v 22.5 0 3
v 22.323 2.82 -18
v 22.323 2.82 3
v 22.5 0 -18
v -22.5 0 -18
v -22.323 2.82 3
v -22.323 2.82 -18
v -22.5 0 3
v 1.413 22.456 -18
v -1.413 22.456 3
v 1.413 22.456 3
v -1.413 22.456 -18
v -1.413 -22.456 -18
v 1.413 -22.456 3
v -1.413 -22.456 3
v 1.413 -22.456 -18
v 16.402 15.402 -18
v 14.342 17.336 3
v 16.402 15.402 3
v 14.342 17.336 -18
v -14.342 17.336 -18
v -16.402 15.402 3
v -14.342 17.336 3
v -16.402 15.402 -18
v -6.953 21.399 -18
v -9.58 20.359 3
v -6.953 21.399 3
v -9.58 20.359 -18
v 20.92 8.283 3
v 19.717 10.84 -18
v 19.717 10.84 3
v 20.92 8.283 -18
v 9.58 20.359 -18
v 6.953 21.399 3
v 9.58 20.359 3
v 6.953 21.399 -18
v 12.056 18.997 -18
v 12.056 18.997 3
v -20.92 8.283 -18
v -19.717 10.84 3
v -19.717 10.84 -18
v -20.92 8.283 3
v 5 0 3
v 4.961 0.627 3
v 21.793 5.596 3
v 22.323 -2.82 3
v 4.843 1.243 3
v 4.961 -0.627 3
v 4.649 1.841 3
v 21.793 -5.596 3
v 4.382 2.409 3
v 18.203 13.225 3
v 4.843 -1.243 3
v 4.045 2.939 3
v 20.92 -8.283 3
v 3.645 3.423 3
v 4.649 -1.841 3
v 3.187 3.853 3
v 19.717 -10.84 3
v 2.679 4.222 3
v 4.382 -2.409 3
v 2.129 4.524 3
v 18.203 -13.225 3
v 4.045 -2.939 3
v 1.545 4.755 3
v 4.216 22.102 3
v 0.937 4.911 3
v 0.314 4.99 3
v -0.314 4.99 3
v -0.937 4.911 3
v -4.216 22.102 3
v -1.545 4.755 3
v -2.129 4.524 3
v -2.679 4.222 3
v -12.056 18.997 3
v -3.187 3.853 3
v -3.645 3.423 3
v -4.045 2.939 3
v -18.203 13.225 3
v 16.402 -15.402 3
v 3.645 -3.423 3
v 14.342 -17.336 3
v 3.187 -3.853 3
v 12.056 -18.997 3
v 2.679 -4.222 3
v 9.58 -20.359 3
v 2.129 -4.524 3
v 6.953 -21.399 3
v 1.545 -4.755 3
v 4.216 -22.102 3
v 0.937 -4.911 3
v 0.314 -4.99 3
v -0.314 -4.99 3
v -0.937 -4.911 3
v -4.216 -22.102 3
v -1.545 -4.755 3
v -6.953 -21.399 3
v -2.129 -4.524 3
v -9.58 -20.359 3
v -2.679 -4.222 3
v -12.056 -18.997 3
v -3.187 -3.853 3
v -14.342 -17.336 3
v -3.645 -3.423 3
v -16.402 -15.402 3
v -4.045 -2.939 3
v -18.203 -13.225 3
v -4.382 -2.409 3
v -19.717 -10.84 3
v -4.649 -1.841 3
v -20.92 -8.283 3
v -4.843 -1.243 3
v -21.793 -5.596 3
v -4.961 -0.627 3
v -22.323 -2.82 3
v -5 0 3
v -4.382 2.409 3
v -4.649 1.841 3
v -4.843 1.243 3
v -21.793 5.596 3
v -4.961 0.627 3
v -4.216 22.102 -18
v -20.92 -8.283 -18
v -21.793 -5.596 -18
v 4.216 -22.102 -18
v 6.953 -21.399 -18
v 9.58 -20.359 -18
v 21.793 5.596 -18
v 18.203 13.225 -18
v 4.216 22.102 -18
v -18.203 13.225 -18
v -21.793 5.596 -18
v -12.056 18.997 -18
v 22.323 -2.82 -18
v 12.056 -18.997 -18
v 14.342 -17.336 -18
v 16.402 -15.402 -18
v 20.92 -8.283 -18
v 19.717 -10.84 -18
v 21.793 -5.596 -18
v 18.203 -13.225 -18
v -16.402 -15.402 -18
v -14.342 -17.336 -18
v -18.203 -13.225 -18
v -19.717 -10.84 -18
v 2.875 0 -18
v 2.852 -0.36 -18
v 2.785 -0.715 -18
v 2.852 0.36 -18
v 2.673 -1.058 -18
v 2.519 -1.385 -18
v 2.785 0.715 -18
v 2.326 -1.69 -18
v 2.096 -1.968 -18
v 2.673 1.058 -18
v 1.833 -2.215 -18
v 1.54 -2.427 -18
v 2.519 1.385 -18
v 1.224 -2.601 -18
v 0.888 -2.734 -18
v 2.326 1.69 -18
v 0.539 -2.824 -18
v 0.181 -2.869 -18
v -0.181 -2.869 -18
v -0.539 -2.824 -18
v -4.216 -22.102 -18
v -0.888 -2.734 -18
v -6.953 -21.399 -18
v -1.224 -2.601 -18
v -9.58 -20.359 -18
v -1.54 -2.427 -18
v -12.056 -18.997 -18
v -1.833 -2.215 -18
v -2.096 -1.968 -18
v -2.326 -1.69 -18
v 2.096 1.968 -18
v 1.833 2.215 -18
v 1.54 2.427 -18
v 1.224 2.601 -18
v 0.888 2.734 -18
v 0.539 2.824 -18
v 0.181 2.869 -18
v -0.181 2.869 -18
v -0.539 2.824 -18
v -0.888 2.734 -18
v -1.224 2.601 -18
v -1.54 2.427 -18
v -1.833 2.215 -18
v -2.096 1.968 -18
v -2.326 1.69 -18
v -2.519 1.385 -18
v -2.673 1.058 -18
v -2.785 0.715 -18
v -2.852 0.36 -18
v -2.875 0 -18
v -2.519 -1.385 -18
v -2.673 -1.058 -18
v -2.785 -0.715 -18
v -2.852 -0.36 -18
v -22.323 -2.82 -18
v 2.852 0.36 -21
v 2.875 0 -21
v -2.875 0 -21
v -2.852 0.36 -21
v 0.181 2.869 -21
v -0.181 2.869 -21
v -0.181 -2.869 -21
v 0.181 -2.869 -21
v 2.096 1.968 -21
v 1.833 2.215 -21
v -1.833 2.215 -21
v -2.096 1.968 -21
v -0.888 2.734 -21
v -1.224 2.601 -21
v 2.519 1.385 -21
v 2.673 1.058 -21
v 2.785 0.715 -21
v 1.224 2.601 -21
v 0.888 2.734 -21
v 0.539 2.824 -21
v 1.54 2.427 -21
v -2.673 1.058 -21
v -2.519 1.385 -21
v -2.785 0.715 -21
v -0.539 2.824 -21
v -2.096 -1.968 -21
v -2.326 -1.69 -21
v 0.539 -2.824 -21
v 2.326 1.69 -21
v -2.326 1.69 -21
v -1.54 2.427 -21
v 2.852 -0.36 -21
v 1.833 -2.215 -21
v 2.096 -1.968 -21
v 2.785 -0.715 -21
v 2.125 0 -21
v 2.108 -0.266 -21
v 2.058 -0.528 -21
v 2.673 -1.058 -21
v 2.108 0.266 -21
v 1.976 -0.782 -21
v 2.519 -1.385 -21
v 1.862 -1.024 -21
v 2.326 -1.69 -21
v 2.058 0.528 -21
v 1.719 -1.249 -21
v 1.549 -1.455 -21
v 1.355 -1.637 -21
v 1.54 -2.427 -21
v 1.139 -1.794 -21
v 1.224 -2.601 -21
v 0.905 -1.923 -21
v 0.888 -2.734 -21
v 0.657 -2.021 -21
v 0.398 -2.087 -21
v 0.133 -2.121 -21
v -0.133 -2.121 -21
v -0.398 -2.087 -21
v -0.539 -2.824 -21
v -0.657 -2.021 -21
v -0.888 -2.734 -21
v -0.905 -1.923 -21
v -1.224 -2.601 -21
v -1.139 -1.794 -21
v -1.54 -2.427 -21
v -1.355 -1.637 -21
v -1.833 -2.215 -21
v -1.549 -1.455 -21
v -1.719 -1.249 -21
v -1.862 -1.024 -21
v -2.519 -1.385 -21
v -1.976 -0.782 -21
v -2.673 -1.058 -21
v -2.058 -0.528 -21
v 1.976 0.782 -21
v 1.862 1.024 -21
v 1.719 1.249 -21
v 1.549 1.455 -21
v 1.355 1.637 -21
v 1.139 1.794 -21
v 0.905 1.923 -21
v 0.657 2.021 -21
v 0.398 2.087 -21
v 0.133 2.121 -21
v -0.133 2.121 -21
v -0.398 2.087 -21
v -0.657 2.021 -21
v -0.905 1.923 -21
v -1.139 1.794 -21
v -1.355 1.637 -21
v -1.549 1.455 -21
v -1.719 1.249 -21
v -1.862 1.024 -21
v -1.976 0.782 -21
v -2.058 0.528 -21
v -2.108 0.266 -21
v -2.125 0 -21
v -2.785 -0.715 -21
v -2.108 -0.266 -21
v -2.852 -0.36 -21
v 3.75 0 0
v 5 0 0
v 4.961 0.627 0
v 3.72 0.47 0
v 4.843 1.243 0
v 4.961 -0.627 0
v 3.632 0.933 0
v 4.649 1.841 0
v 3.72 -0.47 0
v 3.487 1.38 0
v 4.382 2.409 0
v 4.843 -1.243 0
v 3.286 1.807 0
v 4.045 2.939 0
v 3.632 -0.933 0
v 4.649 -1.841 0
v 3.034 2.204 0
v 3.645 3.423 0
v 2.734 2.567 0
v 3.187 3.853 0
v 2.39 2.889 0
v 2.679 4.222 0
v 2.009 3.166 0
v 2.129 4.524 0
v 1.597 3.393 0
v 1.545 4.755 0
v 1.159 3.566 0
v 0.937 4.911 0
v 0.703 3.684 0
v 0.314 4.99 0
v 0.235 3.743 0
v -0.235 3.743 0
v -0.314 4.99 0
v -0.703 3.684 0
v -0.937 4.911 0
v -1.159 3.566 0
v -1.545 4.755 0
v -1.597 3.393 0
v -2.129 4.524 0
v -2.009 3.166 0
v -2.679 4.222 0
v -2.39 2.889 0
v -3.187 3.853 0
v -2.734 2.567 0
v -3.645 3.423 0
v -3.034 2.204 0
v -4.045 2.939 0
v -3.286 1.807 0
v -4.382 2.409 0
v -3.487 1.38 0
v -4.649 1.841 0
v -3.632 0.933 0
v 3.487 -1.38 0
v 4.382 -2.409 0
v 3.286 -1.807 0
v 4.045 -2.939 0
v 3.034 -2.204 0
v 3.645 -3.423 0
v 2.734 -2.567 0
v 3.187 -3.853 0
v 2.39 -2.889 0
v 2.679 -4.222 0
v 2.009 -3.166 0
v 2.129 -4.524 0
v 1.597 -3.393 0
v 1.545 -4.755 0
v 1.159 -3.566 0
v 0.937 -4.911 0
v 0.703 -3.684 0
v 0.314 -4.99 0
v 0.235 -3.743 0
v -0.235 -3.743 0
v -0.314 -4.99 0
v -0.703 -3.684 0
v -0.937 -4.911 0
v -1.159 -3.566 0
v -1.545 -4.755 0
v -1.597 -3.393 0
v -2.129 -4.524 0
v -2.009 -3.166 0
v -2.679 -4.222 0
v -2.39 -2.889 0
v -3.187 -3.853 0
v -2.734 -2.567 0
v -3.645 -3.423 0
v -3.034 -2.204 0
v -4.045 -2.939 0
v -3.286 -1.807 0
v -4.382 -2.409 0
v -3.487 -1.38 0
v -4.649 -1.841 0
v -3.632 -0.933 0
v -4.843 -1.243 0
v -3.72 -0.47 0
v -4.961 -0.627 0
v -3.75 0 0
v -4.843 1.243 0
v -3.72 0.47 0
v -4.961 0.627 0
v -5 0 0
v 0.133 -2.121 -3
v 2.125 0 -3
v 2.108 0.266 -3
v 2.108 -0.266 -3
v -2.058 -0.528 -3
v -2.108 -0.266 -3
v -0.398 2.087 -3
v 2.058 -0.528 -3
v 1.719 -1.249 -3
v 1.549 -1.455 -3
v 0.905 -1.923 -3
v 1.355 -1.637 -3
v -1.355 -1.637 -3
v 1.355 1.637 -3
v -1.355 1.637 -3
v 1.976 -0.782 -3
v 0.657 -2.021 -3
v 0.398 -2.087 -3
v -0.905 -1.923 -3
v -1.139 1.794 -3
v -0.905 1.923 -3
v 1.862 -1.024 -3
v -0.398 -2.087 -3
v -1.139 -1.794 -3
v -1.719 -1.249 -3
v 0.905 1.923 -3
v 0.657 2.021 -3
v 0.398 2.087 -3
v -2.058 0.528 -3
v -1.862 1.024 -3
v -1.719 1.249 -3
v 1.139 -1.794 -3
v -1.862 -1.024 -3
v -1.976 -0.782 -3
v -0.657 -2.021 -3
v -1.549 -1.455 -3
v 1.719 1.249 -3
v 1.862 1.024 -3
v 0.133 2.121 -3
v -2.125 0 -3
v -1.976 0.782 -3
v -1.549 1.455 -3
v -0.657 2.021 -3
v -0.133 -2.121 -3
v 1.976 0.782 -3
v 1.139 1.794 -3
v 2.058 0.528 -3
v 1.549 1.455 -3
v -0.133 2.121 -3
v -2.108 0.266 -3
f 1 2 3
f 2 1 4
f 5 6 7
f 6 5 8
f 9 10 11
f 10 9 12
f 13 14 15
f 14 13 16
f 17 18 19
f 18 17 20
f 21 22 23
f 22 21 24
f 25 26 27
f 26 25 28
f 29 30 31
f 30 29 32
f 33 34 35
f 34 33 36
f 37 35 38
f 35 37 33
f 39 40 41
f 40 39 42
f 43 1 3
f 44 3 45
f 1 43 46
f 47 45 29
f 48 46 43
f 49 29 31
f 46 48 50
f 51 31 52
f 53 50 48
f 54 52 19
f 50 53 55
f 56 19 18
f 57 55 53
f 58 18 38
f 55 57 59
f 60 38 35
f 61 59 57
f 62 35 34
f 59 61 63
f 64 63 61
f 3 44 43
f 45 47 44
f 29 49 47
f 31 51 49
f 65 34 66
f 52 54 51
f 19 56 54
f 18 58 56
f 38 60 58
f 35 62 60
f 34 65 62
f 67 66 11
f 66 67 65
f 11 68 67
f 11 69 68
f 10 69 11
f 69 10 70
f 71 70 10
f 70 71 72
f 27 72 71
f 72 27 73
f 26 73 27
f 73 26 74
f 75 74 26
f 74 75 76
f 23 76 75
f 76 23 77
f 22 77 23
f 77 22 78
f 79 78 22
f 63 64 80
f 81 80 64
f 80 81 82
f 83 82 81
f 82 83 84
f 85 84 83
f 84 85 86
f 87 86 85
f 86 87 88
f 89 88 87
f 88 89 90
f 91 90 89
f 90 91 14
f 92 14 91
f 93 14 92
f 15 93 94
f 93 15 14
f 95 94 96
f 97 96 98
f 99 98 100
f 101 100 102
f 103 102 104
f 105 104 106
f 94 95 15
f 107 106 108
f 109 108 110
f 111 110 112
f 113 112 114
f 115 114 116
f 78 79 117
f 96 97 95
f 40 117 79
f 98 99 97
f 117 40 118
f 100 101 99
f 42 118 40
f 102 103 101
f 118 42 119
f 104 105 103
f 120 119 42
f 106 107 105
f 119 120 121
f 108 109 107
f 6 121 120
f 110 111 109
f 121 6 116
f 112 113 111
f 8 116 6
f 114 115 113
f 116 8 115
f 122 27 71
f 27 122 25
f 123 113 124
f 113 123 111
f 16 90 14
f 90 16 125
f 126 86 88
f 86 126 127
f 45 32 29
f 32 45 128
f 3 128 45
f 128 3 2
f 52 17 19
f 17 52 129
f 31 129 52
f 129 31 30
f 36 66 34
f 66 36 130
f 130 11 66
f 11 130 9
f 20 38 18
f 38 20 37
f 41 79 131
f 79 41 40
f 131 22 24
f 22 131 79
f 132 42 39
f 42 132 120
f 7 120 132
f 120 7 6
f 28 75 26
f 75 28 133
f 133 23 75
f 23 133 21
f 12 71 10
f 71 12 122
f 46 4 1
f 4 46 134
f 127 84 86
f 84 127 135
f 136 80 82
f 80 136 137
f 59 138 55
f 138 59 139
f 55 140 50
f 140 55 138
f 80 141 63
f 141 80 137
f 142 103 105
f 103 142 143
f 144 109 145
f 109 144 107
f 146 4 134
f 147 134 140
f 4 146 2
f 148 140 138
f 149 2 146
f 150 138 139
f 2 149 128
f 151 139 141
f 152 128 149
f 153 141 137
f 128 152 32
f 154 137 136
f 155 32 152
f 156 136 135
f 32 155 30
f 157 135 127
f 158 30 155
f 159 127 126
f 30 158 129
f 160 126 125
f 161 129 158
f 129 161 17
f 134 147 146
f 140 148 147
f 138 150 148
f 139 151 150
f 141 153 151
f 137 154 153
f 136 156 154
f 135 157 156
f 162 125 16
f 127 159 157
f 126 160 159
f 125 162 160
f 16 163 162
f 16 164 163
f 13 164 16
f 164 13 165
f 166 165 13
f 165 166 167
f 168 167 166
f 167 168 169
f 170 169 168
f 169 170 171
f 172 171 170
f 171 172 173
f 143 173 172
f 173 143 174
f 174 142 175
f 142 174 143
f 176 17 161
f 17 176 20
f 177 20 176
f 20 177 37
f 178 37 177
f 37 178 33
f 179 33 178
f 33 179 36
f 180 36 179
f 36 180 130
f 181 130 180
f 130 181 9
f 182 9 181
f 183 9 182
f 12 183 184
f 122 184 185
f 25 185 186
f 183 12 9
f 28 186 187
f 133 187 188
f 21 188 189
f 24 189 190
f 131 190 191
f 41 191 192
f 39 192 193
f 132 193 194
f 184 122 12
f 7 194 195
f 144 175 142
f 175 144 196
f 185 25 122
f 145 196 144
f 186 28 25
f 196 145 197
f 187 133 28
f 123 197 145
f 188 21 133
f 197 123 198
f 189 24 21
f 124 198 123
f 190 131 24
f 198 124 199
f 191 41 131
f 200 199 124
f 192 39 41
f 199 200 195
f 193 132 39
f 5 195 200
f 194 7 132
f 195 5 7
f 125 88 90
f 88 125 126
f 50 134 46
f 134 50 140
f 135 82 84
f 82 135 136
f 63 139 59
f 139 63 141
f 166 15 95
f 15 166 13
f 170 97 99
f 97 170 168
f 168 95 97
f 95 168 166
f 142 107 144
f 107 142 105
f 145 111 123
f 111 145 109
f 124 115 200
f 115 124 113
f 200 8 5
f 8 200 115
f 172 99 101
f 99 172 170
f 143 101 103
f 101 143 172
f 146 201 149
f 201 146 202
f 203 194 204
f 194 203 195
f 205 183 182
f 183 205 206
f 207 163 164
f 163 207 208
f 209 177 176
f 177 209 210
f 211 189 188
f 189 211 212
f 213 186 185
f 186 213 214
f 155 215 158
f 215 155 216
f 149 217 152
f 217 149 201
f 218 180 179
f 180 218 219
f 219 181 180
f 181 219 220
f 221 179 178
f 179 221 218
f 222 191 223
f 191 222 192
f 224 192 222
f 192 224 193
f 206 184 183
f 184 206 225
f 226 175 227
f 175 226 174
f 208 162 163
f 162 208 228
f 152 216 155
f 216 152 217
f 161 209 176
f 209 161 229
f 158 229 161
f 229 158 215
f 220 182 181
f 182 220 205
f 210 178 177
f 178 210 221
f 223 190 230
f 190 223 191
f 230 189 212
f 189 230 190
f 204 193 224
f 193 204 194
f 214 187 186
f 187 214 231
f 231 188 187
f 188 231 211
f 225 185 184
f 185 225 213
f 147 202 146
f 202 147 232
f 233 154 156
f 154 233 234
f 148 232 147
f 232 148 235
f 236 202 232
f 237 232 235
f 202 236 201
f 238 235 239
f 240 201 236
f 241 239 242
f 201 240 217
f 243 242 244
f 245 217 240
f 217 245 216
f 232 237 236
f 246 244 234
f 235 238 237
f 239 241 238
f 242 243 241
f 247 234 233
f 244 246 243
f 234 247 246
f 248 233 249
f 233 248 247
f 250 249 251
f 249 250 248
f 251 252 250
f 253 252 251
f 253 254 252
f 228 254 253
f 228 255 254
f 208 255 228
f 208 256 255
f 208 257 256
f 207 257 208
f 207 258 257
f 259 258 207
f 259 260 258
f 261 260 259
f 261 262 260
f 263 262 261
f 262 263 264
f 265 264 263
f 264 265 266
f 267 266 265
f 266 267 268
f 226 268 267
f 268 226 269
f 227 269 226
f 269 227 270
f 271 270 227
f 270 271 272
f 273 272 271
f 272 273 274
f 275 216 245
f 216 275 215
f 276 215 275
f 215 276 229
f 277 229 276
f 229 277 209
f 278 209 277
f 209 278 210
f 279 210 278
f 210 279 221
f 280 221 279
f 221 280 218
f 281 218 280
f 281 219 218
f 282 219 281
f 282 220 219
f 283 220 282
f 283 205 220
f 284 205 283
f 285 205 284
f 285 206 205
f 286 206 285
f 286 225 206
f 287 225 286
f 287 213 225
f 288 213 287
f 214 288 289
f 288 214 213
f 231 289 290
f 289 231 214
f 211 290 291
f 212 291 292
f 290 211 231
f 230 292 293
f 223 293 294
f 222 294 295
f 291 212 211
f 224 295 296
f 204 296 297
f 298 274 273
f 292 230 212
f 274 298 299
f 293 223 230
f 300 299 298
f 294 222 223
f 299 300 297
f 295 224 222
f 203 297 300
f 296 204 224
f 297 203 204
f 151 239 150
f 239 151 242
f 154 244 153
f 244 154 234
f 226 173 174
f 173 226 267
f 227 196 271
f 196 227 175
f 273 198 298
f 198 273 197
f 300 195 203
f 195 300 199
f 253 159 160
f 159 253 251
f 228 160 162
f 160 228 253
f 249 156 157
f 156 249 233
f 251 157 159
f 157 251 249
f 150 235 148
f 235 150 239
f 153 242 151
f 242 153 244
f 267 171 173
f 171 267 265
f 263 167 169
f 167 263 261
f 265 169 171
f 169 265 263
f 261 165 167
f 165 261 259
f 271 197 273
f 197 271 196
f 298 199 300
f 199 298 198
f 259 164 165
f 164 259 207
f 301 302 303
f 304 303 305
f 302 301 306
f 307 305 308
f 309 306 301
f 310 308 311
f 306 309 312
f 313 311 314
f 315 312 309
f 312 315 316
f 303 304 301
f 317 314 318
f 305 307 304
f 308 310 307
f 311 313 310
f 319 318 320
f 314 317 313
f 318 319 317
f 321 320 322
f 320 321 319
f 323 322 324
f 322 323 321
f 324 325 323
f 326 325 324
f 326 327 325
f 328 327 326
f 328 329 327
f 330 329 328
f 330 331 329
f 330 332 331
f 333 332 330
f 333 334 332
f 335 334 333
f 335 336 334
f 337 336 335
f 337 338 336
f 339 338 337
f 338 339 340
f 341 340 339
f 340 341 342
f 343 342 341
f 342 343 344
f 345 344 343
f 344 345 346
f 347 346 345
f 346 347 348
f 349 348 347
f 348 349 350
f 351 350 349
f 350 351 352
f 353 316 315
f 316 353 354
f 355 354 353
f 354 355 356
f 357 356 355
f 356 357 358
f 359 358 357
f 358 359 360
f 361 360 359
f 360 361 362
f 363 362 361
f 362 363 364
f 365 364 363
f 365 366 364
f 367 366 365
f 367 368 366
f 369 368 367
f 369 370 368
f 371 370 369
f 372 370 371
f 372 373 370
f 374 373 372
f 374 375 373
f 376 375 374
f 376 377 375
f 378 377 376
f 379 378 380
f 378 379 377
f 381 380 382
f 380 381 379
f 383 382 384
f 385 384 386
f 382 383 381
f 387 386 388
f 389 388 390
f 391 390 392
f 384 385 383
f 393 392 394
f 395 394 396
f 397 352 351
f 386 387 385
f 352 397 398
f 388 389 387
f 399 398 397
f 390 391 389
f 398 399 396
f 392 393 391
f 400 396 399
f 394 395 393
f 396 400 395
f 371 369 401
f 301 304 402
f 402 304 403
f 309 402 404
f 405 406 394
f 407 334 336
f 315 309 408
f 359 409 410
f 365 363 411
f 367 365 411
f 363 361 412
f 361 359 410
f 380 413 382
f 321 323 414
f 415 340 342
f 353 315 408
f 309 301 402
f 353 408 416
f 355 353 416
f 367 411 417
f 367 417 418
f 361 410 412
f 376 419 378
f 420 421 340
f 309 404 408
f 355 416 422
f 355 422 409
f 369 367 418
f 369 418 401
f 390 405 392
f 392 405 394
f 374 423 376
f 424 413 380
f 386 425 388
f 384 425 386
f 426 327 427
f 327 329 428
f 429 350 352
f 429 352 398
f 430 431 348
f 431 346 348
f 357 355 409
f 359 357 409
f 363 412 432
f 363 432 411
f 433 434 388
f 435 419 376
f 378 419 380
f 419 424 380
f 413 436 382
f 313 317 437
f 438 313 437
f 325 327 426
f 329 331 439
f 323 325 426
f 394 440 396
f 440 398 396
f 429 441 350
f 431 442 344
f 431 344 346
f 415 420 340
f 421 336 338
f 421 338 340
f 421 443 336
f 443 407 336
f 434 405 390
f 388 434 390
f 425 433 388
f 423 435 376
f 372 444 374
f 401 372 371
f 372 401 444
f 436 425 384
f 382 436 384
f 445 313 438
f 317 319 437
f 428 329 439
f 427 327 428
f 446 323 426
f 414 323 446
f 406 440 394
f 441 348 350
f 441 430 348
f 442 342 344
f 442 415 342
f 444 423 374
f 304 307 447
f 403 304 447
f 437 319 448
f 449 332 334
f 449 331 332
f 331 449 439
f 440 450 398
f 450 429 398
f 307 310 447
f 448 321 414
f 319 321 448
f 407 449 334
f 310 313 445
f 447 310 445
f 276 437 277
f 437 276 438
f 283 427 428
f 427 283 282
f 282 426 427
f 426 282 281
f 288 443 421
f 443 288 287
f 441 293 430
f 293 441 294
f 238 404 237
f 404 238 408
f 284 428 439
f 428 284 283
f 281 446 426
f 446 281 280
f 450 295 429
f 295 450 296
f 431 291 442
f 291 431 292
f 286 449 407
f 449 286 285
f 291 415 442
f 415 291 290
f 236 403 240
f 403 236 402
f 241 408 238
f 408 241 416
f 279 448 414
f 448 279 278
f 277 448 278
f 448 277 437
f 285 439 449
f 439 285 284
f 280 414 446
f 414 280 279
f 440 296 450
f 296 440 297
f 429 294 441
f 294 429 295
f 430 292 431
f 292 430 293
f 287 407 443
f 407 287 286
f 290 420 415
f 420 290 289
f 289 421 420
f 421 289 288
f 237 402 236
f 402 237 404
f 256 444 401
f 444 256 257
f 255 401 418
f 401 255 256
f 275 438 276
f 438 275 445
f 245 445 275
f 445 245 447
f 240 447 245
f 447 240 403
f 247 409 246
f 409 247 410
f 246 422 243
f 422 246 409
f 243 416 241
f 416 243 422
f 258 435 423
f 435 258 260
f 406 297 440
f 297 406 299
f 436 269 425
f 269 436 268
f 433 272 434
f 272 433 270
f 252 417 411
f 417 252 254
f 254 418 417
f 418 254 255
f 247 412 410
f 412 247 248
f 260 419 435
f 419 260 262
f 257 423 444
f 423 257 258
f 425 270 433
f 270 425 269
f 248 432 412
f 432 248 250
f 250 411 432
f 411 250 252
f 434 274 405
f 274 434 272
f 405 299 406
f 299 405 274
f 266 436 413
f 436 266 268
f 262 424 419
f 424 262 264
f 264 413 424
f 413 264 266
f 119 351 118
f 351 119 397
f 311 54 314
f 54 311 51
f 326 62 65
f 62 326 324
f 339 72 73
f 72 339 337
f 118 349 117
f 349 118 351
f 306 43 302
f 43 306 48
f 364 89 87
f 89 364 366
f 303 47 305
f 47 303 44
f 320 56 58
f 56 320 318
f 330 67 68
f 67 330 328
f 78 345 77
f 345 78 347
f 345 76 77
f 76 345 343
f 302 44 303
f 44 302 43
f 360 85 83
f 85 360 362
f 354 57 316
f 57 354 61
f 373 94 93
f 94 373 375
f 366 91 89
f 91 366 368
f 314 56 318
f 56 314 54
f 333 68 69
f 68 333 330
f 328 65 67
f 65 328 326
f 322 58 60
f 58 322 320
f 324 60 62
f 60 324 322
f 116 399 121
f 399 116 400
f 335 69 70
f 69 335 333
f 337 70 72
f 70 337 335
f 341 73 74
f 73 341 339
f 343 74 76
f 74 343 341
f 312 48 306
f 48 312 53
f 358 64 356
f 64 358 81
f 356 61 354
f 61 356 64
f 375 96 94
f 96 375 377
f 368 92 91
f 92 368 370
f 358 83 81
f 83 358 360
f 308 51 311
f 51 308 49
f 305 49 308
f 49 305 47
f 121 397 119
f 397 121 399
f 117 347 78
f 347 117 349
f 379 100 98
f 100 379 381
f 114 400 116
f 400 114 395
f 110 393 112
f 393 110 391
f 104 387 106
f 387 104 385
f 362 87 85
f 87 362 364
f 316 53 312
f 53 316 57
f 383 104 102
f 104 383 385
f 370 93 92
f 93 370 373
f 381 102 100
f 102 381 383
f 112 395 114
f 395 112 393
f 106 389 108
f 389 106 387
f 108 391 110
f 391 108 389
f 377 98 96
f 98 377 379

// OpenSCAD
$fn = 50;

difference() {
	union() {
		translate(v = [0, 0, -18.0]) {
			cylinder(h = 21, r = 22.5);
		}
		#translate(v = [0, 0, -21.0]) {
			cylinder(h = 21, r = 2.875);
		}
	}
	union() {
		translate(v = [0, 0, 0]) {
			rotate(a = [0, 0, 0]) {
				difference() {
					union() {
						translate(v = [0, 0, -21.0]) {
							cylinder(h = 21, r = 2.0);
						}
						translate(v = [0, 0, -3]) {
							cylinder(h = 3, r1 = 2.125, r2 = 3.75);
						}
						translate(v = [0, 0, -21.0]) {
							cylinder(h = 21, r = 2.125);
						}
						translate(v = [0, 0, -21.0]) {
							cylinder(h = 21, r = 2.0);
						}
					}
					union();
				}
			}
		}
		#cylinder(h = 3, r = 5.0);
	}
}
